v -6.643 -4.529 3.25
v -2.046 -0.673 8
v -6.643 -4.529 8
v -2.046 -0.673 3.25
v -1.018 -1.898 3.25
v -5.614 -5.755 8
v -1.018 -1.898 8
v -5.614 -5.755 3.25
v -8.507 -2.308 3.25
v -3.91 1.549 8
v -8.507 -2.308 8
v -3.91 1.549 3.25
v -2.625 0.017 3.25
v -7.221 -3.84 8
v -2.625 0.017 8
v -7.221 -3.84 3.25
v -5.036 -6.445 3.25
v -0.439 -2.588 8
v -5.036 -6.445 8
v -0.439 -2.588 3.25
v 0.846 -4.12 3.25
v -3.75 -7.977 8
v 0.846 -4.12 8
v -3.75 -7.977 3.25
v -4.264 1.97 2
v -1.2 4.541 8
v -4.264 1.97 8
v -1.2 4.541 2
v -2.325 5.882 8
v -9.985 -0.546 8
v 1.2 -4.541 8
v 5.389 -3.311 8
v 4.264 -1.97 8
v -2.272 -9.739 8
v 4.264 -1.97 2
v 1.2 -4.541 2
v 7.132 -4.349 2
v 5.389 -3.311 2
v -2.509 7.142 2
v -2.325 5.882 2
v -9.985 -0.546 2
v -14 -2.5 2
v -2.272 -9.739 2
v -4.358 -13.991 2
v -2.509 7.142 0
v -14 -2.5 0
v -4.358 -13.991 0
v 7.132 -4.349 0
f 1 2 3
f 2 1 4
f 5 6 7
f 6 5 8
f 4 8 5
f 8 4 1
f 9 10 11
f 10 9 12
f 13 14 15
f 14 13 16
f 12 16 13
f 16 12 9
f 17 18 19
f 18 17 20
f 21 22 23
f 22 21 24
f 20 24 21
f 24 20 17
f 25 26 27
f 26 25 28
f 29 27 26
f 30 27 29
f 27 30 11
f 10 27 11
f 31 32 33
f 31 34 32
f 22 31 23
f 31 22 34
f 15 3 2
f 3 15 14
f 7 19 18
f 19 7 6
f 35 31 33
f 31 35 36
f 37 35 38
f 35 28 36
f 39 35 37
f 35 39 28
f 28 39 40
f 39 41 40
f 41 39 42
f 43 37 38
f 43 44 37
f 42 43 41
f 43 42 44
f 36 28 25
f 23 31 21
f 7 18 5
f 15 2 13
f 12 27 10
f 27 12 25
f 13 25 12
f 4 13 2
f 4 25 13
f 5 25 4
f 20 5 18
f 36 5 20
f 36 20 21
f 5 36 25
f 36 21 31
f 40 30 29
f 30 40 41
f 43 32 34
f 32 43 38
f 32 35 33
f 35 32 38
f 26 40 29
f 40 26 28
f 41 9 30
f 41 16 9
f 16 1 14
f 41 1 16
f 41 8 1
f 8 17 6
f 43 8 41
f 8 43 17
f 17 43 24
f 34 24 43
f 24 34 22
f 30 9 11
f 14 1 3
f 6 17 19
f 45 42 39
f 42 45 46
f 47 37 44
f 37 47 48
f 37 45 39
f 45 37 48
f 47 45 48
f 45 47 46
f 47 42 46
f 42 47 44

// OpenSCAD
module suportMicroInterruptor(t,r){
    rotate(r){ // interruptor baix
        translate(t){
            union(){ // support micro interruptor
                difference(){
                    translate([0,-3,1]){ // suport
                        cube(size = [12,10,6], center = true);
                    }
                    translate([0,1,1]){
                        cube(size = [8.5,6,6], center = true); // forat principal
    //                    cube(size = [8.3,6,10], center = true); // forat principal
                        translate([0,-5,0.75]){ // forats cables
                            translate([0,0,0]){
                                cube(size = [1.6,15,5], center = true);
                            }
                            translate([-2.7,0,0]){
                                cube(size = [2,15,5], center = true);
                            }
                            translate([2.7,0,0]){
                                cube(size = [2,15,5], center = true);
                            }
    /*                        translate([0,0,2]){
                                translate([0,0,0]){
                                    cube(size = [1.4,15,8], center = true);
                                }
                                translate([-2.5,0,0]){
                                    cube(size = [1.4,15,8], center = true);
                                }
                                translate([2.5,0,0]){
                                    cube(size = [1.4,15,8], center = true);
                                }
                            }
    */
                        }
                    }
                }
            }
        }
    }
}
translate([-3,-3,0]){
translate([-11,0.5,0]){
rotate([0,0,-50]){
cube([15,15,2]);
}
}
}
suportMicroInterruptor([0,0,4],[0,0,-50]);
